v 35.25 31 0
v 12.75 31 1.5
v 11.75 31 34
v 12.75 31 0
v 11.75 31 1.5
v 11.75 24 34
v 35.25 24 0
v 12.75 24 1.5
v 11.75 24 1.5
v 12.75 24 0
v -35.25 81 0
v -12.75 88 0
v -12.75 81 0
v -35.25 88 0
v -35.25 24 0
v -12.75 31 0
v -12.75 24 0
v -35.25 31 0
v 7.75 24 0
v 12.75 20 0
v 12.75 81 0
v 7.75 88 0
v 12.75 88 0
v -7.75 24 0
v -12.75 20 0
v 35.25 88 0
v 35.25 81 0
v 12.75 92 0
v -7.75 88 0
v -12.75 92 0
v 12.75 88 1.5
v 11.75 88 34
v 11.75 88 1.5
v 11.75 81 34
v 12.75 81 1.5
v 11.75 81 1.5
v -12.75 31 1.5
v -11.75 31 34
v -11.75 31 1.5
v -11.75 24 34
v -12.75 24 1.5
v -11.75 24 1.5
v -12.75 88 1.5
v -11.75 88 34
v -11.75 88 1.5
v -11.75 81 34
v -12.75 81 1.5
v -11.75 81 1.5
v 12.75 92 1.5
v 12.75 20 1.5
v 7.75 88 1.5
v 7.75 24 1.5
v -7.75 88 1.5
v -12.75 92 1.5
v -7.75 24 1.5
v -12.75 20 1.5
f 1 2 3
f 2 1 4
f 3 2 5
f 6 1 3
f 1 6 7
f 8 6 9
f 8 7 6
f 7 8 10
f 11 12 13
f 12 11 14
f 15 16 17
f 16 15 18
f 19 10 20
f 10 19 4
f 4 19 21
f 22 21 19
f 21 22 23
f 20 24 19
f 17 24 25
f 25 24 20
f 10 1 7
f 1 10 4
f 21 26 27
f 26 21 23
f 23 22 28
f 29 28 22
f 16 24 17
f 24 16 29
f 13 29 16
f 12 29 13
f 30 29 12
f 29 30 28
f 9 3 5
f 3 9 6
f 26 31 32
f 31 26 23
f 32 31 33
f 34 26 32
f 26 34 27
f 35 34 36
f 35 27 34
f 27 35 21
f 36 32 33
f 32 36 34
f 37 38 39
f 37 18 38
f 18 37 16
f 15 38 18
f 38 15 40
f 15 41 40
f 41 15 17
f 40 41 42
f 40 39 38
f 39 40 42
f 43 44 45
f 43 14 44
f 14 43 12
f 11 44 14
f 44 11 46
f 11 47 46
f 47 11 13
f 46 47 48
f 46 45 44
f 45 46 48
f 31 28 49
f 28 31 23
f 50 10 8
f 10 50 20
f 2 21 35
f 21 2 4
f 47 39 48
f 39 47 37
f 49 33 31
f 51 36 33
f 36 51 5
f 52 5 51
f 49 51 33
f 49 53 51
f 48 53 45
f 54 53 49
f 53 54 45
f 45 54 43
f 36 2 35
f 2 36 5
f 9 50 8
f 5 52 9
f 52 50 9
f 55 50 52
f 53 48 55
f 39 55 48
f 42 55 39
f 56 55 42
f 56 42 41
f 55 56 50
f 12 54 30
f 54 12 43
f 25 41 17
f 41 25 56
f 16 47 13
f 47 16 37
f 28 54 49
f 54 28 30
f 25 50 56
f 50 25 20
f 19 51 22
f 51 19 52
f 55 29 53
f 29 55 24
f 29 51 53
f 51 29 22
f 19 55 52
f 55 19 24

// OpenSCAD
Length = 23.5;
Width = 112;
Height = 1.5;

// Draw legs
legs(L = Length, W = Width);
mirror([1, 0, 0])
    legs(L = Length, W = Width);
    
// Base
base(Length, Width, Height);

module support(L = 23.5, W = 7, H = 34) {
    
    Points = [
        // Bottom vertices
        [0, 0, 0], //0
        [0, W, 0], //1
        [L, W, 0], //2
        [L, 0, 0], //3
        // Top points
        [0, W, H], //4
        [0, 0, H]  //5
        
    ];
    
    Faces = [
        // Bottom face
        [0, 3, 2, 1],
        // Backside
        [0, 1, 4, 5],
        // Sides
        [0, 5, 3],
        [1, 2, 4],
        // Top
        [2, 3, 5, 4]
    ];
    
    polyhedron(Points, Faces);
}

module legs(L = 23.5, W = 112, Inset = 24) {
       
    translate([L / 2, Inset, 0])
        support(L);
    
    translate([L / 2, W - Inset - 7, 0])
        support(L);
}

module base(L = 23.5, W = 112, H = 2) {
    translate([-((L / 2) + 1), 20, 0]){
        difference(){
            cube([L + 2, W - (20 * 2), H]);
            translate([5, 4, -1])
                cube([L - 8, W - 8 - (20 * 2), H + 2]);
        }
    }
}
